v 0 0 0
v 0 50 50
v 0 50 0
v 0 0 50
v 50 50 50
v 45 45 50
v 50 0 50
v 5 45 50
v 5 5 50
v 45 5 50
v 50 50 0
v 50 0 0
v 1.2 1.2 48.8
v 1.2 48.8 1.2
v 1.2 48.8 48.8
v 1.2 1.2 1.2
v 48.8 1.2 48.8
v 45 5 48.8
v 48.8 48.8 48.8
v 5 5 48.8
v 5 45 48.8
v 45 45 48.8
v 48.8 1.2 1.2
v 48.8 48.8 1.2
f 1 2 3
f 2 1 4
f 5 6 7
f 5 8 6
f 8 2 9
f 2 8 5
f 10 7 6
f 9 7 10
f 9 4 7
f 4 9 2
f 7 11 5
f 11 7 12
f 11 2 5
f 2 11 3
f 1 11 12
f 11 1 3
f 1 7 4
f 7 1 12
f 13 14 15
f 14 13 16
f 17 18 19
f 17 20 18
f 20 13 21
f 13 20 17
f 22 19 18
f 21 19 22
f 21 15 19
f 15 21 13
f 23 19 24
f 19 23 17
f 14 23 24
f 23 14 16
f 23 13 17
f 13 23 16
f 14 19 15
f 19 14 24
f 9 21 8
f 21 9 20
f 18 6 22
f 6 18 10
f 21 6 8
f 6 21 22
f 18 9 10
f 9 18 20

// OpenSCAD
width = 50;
thickness = 1.2;
hole_width = width - 10;

distance = (width - hole_width) / 2;

difference() {
    cube(width, width, width);
    translate([thickness, thickness, thickness]) cube(width - (2 * thickness) , width - (2 * thickness), width - (2 * thickness));
    translate([distance, distance, width - thickness]) cube(hole_width , hole_width, thickness);
}
